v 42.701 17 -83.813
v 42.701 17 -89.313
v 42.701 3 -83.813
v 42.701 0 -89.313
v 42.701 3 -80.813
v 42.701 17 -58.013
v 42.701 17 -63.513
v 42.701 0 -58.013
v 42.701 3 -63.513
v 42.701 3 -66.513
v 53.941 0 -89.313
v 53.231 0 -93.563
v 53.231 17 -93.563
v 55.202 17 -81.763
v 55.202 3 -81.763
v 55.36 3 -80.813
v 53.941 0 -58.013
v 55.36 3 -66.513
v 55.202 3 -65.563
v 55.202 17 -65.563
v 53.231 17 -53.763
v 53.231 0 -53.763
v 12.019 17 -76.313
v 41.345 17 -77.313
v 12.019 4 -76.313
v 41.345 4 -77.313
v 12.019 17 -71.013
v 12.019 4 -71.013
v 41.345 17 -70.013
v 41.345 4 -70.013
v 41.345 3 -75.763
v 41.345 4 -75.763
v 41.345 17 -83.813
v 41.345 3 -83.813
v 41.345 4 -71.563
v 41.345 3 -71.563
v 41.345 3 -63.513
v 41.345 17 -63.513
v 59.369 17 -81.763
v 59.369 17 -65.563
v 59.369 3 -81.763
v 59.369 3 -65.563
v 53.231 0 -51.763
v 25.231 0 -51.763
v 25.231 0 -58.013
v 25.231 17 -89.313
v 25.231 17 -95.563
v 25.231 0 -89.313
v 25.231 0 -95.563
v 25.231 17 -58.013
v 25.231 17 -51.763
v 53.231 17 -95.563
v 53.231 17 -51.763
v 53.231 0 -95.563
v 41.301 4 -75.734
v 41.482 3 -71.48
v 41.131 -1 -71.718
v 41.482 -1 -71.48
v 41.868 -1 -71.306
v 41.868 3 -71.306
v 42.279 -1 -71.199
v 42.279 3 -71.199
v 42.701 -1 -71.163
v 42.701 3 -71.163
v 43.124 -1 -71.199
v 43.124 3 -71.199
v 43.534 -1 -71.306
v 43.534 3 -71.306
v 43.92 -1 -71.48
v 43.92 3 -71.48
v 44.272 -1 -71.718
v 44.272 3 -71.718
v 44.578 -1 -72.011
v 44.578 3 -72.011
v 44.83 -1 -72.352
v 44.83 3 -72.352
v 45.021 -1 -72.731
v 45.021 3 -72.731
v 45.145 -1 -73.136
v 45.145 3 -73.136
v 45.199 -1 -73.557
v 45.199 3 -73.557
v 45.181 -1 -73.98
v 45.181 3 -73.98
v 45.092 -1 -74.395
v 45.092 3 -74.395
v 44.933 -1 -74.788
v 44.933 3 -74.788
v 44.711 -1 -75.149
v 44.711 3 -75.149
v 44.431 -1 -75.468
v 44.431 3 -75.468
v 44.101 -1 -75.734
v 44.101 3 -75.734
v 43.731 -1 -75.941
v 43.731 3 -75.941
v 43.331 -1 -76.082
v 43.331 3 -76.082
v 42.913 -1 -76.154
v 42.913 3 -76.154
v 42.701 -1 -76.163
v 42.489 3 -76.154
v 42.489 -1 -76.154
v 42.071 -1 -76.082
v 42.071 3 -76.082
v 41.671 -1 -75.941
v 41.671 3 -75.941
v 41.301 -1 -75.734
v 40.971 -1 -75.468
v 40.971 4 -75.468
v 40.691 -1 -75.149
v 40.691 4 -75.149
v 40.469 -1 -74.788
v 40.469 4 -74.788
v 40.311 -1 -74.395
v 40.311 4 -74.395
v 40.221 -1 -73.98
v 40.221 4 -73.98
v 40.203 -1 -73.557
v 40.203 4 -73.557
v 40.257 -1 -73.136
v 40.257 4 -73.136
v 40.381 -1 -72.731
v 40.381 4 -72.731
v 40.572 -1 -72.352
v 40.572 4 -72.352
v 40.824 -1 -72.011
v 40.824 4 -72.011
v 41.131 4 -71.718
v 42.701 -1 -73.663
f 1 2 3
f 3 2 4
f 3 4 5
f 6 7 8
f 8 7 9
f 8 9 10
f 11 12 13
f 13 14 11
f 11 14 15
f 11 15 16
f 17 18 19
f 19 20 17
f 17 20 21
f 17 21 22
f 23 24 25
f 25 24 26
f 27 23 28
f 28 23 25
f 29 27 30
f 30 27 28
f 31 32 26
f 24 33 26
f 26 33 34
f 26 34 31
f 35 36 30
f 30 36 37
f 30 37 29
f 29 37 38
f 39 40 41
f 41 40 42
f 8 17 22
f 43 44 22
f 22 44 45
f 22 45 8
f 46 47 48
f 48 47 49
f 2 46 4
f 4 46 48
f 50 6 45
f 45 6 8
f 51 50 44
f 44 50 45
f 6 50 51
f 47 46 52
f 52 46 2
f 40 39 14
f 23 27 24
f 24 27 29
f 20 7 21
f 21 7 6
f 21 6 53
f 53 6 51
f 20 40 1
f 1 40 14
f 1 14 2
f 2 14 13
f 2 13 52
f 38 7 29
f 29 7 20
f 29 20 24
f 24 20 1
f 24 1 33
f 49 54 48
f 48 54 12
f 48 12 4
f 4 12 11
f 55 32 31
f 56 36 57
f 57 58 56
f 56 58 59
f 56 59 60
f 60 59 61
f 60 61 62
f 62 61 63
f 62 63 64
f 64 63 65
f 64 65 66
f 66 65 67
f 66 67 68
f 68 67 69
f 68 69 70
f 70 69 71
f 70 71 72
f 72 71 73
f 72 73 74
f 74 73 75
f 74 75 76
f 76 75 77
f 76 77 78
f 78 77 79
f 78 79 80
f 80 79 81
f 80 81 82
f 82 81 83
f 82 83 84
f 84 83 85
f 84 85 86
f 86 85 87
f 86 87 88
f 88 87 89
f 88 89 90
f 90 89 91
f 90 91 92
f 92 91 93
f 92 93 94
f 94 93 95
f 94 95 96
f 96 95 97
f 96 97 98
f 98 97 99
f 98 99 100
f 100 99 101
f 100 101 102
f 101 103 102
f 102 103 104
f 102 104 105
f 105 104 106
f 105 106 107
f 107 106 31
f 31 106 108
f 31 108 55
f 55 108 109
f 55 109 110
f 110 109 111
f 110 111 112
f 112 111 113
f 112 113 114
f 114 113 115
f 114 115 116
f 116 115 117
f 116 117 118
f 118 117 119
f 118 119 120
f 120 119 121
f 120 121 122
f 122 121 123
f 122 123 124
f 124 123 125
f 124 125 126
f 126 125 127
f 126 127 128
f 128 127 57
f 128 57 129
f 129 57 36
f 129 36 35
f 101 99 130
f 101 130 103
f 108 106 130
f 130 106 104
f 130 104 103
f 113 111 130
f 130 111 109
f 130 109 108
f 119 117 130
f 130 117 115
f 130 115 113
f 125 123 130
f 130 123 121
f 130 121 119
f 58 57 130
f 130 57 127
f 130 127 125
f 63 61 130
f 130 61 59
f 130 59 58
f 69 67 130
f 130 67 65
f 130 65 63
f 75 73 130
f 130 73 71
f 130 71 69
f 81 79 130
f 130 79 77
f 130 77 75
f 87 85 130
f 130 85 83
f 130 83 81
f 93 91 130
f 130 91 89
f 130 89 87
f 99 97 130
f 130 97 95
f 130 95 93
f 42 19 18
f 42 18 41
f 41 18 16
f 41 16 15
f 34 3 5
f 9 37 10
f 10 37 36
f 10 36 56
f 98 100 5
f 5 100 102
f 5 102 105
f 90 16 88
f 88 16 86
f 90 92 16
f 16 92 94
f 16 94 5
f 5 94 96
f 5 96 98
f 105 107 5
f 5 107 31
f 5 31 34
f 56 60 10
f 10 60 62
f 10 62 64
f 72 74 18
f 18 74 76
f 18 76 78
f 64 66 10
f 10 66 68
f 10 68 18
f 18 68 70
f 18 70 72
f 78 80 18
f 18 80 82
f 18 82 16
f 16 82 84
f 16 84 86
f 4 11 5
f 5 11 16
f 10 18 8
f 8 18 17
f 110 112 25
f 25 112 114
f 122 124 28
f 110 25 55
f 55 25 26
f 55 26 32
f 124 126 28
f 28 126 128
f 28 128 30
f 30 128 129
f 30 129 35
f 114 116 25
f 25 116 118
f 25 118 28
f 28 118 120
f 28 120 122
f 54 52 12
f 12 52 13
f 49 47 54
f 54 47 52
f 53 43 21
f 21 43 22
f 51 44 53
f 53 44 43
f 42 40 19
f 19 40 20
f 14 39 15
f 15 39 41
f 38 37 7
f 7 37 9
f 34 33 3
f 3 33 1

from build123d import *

# Parameters (mm, degrees)
BOSS_EXTRUDE1_DEPTH     = 17
SKETCH2_R               = 2.5
BOSS_EXTRUDE2_DEPTH     = 1
CUT_EXTRUDE1_DEPTH      = 3
CUT_EXTRUDE5_DEPTH      = 2
CUT_EXTRUDE5_DEPTH_BACK = 3
SKETCH5_W               = 1.356176493
SKETCH5_H               = 3
CUT_EXTRUDE6_DEPTH      = 3
CUT_EXTRUDE11_DEPTH     = 20
CUT_EXTRUDE12_DEPTH     = 1
SKETCH12_W              = 28
SKETCH12_H              = 17
BOSS_EXTRUDE3_DEPTH     = 2
SKETCH13_W              = 28
SKETCH13_H              = 17
BOSS_EXTRUDE4_DEPTH     = 2
SKETCH14_W              = 1.356176493
SKETCH14_H              = 14
BOSS_EXTRUDE5_DEPTH     = 1
SKETCH15_W              = 1.356176493
SKETCH15_H              = 14
BOSS_EXTRUDE6_DEPTH     = 1
BOSS_EXTRUDE7_DEPTH     = 1
BOSS_EXTRUDE8_DEPTH     = 1
SKETCH18_W              = 1.356176493
SKETCH18_H              = 14
BOSS_EXTRUDE9_DEPTH     = 2
SKETCH19_W              = 1.356176493
SKETCH19_H              = 14
BOSS_EXTRUDE10_DEPTH    = 2


with BuildPart() as part:
    # Sketch1 → Boss-Extrude1 (new body)
    with BuildSketch(Plane(origin=(0, 0, 0), x_dir=(1, 0, 0), z_dir=(0, 1, 0))):
        Polygon((53.231444905, 93.562909441), (55.368661466, 80.762909441), (59.368661466, 80.762909441), (59.368661466, 66.562909441), (55.368661466, 66.562909441), (53.231444905, 53.762909441), (25.231444905, 53.762909441), (25.231444905, 58.012909441), (42.701133317, 58.012909441), (42.701133317, 66.512909441), (41.344956824, 66.512909441), (41.344956824, 70.012909441), (12.018661466, 71.012909441), (12.018661466, 76.312909441), (41.344956824, 77.312909441), (41.344956824, 80.812909441), (42.701133317, 80.812909441), (42.701133317, 89.312909441), (25.231444905, 89.312909441), (25.231444905, 93.562909441), align=None)
    extrude(amount=BOSS_EXTRUDE1_DEPTH)

    # Sketch2 → Boss-Extrude2 (add)
    with BuildSketch(Plane.XZ):
        with Locations((42.701133317, -73.662909441)):
            Circle(SKETCH2_R)
    extrude(amount=BOSS_EXTRUDE2_DEPTH)

    # Sketch3 → Cut-Extrude1 (cut)
    with BuildSketch(Plane(origin=(0, 0, 0), x_dir=(-1, 0, 0), z_dir=(0, -1, 0))):
        with BuildLine():
            Line((-42.701133317, 80.812909441), (-55.368661466, 80.762909441))
            Line((-55.368661466, 80.762909441), (-59.368661466, 80.762909441))
            Line((-59.368661466, 80.762909441), (-59.368661466, 66.562909441))
            Line((-59.368661466, 66.562909441), (-41.344956824, 66.512909441))
            Line((-41.344956824, 66.512909441), (-41.344956824, 70.012909441))
            Line((-41.344956824, 70.012909441), (-41.344956824, 71.562722468))
            ThreePointArc((-41.344956824, 71.562722468), (-45.201133317, 73.662909441), (-41.344956824, 75.763096414))
            Line((-41.344956824, 75.763096414), (-41.344956824, 77.312909441))
            Line((-41.344956824, 77.312909441), (-41.344956824, 80.812909441))
            Line((-41.344956824, 80.812909441), (-42.701133317, 80.812909441))
        make_face()
    extrude(amount=-CUT_EXTRUDE1_DEPTH, mode=Mode.SUBTRACT)

    # Sketch4 → Cut-Extrude5 (cut, two sides)
    with BuildSketch(Plane.XZ) as cut_extrude5_sk:
        with BuildLine():
            Line((12.018661466, -76.312909441), (41.344956824, -77.312909441))
            Line((41.344956824, -77.312909441), (41.344956824, -77.220900459))
            Line((41.344956824, -77.220900459), (41.344956824, -75.763096414))
            ThreePointArc((41.344956824, -75.763096414), (40.201133317, -73.662909441), (41.344956824, -71.562722468))
            Line((41.344956824, -71.562722468), (41.344956824, -70.012909441))
            Line((41.344956824, -70.012909441), (12.018661466, -71.012909441))
            Line((12.018661466, -71.012909441), (12.018661466, -76.312909441))
        make_face()
    extrude(amount=CUT_EXTRUDE5_DEPTH, mode=Mode.SUBTRACT)
    extrude(cut_extrude5_sk.sketch, amount=-CUT_EXTRUDE5_DEPTH_BACK, mode=Mode.SUBTRACT)

    # Sketch5 → Cut-Extrude6 (cut)
    with BuildSketch(Plane.XY.offset(-66.512909441)):
        with Locations((42.023045071, 1.5)):
            Rectangle(SKETCH5_W, SKETCH5_H)
    extrude(amount=-CUT_EXTRUDE6_DEPTH, mode=Mode.SUBTRACT)

    # Sketch7 → Cut-Extrude11 (cut)
    with BuildSketch(Plane.ZY.offset(-42.701133317)):
        Polygon((-66.516671643, 0), (-67.290586566, 0), (-67.290586566, 3), (-66.512909441, 3), (-58.012909441, 0), align=None)
        Polygon((-89.312909441, 0), (-80.812909441, 0), (-79.713237651, 0), (-79.713237651, 3), (-80.812909441, 3), align=None)
    extrude(amount=-CUT_EXTRUDE11_DEPTH, mode=Mode.SUBTRACT)

    # Sketch11 → Cut-Extrude12 (cut)
    with BuildSketch(Plane.XZ.offset(-3)):
        with BuildLine():
            Line((41.344956824, -77.312909441), (41.344956824, -75.763096414))
            ThreePointArc((41.344956824, -75.763096414), (40.201133317, -73.662909441), (41.344956824, -71.562722468))
            Line((41.344956824, -71.562722468), (41.344956824, -70.012909441))
            Line((41.344956824, -70.012909441), (12.018661466, -71.012909441))
            Line((12.018661466, -71.012909441), (12.018661466, -76.312909441))
            Line((12.018661466, -76.312909441), (41.344956824, -77.312909441))
        make_face()
    extrude(amount=-CUT_EXTRUDE12_DEPTH, mode=Mode.SUBTRACT)

    # Sketch12 → Boss-Extrude3 (add)
    with BuildSketch(Plane(origin=(0, 0, -93.562909441), x_dir=(-1, 0, 0), z_dir=(0, 0, -1))):
        with Locations((-39.231444905, 8.5)):
            Rectangle(SKETCH12_W, SKETCH12_H)
    extrude(amount=BOSS_EXTRUDE3_DEPTH)

    # Sketch13 → Boss-Extrude4 (add)
    with BuildSketch(Plane.XY.offset(-53.762909441)):
        with Locations((39.231444905, 8.5)):
            Rectangle(SKETCH13_W, SKETCH13_H)
    extrude(amount=BOSS_EXTRUDE4_DEPTH)

    # Sketch14 → Boss-Extrude5 (add)
    with BuildSketch(Plane.XY.offset(-66.512909441)):
        with Locations((42.023045071, 10)):
            Rectangle(SKETCH14_W, SKETCH14_H)
    extrude(amount=BOSS_EXTRUDE5_DEPTH)

    # Sketch15 → Boss-Extrude6 (add)
    with BuildSketch(Plane(origin=(0, 0, -80.812909441), x_dir=(-1, 0, 0), z_dir=(0, 0, -1))):
        with Locations((-42.023045071, 10)):
            Rectangle(SKETCH15_W, SKETCH15_H)
    extrude(amount=BOSS_EXTRUDE6_DEPTH)

    # Sketch16 → Boss-Extrude7 (add)
    with BuildSketch(Plane.XY.offset(-66.562909441)):
        Polygon((59.368661466, 3), (55.368661466, 3), (53.667179365, 3), (53.667179365, 17), (55.368661466, 17), (59.368661466, 17), align=None)
    extrude(amount=BOSS_EXTRUDE7_DEPTH)

    # Sketch17 → Boss-Extrude8 (add)
    with BuildSketch(Plane(origin=(0, 0, -80.762909441), x_dir=(-1, 0, 0), z_dir=(0, 0, -1))):
        Polygon((-59.368661466, 3), (-55.368661466, 3), (-53.078047716, 3), (-53.078047716, 17), (-55.368661466, 17), (-59.368661466, 17), align=None)
    extrude(amount=BOSS_EXTRUDE8_DEPTH)

    # Sketch18 → Boss-Extrude9 (add)
    with BuildSketch(Plane.XY.offset(-65.512909441)):
        with Locations((42.023045071, 10)):
            Rectangle(SKETCH18_W, SKETCH18_H)
    extrude(amount=BOSS_EXTRUDE9_DEPTH)

    # Sketch19 → Boss-Extrude10 (add)
    with BuildSketch(Plane(origin=(0, 0, -81.812909441), x_dir=(-1, 0, 0), z_dir=(0, 0, -1))):
        with Locations((-42.023045071, 10)):
            Rectangle(SKETCH19_W, SKETCH19_H)
    extrude(amount=BOSS_EXTRUDE10_DEPTH)


solid = part.part
